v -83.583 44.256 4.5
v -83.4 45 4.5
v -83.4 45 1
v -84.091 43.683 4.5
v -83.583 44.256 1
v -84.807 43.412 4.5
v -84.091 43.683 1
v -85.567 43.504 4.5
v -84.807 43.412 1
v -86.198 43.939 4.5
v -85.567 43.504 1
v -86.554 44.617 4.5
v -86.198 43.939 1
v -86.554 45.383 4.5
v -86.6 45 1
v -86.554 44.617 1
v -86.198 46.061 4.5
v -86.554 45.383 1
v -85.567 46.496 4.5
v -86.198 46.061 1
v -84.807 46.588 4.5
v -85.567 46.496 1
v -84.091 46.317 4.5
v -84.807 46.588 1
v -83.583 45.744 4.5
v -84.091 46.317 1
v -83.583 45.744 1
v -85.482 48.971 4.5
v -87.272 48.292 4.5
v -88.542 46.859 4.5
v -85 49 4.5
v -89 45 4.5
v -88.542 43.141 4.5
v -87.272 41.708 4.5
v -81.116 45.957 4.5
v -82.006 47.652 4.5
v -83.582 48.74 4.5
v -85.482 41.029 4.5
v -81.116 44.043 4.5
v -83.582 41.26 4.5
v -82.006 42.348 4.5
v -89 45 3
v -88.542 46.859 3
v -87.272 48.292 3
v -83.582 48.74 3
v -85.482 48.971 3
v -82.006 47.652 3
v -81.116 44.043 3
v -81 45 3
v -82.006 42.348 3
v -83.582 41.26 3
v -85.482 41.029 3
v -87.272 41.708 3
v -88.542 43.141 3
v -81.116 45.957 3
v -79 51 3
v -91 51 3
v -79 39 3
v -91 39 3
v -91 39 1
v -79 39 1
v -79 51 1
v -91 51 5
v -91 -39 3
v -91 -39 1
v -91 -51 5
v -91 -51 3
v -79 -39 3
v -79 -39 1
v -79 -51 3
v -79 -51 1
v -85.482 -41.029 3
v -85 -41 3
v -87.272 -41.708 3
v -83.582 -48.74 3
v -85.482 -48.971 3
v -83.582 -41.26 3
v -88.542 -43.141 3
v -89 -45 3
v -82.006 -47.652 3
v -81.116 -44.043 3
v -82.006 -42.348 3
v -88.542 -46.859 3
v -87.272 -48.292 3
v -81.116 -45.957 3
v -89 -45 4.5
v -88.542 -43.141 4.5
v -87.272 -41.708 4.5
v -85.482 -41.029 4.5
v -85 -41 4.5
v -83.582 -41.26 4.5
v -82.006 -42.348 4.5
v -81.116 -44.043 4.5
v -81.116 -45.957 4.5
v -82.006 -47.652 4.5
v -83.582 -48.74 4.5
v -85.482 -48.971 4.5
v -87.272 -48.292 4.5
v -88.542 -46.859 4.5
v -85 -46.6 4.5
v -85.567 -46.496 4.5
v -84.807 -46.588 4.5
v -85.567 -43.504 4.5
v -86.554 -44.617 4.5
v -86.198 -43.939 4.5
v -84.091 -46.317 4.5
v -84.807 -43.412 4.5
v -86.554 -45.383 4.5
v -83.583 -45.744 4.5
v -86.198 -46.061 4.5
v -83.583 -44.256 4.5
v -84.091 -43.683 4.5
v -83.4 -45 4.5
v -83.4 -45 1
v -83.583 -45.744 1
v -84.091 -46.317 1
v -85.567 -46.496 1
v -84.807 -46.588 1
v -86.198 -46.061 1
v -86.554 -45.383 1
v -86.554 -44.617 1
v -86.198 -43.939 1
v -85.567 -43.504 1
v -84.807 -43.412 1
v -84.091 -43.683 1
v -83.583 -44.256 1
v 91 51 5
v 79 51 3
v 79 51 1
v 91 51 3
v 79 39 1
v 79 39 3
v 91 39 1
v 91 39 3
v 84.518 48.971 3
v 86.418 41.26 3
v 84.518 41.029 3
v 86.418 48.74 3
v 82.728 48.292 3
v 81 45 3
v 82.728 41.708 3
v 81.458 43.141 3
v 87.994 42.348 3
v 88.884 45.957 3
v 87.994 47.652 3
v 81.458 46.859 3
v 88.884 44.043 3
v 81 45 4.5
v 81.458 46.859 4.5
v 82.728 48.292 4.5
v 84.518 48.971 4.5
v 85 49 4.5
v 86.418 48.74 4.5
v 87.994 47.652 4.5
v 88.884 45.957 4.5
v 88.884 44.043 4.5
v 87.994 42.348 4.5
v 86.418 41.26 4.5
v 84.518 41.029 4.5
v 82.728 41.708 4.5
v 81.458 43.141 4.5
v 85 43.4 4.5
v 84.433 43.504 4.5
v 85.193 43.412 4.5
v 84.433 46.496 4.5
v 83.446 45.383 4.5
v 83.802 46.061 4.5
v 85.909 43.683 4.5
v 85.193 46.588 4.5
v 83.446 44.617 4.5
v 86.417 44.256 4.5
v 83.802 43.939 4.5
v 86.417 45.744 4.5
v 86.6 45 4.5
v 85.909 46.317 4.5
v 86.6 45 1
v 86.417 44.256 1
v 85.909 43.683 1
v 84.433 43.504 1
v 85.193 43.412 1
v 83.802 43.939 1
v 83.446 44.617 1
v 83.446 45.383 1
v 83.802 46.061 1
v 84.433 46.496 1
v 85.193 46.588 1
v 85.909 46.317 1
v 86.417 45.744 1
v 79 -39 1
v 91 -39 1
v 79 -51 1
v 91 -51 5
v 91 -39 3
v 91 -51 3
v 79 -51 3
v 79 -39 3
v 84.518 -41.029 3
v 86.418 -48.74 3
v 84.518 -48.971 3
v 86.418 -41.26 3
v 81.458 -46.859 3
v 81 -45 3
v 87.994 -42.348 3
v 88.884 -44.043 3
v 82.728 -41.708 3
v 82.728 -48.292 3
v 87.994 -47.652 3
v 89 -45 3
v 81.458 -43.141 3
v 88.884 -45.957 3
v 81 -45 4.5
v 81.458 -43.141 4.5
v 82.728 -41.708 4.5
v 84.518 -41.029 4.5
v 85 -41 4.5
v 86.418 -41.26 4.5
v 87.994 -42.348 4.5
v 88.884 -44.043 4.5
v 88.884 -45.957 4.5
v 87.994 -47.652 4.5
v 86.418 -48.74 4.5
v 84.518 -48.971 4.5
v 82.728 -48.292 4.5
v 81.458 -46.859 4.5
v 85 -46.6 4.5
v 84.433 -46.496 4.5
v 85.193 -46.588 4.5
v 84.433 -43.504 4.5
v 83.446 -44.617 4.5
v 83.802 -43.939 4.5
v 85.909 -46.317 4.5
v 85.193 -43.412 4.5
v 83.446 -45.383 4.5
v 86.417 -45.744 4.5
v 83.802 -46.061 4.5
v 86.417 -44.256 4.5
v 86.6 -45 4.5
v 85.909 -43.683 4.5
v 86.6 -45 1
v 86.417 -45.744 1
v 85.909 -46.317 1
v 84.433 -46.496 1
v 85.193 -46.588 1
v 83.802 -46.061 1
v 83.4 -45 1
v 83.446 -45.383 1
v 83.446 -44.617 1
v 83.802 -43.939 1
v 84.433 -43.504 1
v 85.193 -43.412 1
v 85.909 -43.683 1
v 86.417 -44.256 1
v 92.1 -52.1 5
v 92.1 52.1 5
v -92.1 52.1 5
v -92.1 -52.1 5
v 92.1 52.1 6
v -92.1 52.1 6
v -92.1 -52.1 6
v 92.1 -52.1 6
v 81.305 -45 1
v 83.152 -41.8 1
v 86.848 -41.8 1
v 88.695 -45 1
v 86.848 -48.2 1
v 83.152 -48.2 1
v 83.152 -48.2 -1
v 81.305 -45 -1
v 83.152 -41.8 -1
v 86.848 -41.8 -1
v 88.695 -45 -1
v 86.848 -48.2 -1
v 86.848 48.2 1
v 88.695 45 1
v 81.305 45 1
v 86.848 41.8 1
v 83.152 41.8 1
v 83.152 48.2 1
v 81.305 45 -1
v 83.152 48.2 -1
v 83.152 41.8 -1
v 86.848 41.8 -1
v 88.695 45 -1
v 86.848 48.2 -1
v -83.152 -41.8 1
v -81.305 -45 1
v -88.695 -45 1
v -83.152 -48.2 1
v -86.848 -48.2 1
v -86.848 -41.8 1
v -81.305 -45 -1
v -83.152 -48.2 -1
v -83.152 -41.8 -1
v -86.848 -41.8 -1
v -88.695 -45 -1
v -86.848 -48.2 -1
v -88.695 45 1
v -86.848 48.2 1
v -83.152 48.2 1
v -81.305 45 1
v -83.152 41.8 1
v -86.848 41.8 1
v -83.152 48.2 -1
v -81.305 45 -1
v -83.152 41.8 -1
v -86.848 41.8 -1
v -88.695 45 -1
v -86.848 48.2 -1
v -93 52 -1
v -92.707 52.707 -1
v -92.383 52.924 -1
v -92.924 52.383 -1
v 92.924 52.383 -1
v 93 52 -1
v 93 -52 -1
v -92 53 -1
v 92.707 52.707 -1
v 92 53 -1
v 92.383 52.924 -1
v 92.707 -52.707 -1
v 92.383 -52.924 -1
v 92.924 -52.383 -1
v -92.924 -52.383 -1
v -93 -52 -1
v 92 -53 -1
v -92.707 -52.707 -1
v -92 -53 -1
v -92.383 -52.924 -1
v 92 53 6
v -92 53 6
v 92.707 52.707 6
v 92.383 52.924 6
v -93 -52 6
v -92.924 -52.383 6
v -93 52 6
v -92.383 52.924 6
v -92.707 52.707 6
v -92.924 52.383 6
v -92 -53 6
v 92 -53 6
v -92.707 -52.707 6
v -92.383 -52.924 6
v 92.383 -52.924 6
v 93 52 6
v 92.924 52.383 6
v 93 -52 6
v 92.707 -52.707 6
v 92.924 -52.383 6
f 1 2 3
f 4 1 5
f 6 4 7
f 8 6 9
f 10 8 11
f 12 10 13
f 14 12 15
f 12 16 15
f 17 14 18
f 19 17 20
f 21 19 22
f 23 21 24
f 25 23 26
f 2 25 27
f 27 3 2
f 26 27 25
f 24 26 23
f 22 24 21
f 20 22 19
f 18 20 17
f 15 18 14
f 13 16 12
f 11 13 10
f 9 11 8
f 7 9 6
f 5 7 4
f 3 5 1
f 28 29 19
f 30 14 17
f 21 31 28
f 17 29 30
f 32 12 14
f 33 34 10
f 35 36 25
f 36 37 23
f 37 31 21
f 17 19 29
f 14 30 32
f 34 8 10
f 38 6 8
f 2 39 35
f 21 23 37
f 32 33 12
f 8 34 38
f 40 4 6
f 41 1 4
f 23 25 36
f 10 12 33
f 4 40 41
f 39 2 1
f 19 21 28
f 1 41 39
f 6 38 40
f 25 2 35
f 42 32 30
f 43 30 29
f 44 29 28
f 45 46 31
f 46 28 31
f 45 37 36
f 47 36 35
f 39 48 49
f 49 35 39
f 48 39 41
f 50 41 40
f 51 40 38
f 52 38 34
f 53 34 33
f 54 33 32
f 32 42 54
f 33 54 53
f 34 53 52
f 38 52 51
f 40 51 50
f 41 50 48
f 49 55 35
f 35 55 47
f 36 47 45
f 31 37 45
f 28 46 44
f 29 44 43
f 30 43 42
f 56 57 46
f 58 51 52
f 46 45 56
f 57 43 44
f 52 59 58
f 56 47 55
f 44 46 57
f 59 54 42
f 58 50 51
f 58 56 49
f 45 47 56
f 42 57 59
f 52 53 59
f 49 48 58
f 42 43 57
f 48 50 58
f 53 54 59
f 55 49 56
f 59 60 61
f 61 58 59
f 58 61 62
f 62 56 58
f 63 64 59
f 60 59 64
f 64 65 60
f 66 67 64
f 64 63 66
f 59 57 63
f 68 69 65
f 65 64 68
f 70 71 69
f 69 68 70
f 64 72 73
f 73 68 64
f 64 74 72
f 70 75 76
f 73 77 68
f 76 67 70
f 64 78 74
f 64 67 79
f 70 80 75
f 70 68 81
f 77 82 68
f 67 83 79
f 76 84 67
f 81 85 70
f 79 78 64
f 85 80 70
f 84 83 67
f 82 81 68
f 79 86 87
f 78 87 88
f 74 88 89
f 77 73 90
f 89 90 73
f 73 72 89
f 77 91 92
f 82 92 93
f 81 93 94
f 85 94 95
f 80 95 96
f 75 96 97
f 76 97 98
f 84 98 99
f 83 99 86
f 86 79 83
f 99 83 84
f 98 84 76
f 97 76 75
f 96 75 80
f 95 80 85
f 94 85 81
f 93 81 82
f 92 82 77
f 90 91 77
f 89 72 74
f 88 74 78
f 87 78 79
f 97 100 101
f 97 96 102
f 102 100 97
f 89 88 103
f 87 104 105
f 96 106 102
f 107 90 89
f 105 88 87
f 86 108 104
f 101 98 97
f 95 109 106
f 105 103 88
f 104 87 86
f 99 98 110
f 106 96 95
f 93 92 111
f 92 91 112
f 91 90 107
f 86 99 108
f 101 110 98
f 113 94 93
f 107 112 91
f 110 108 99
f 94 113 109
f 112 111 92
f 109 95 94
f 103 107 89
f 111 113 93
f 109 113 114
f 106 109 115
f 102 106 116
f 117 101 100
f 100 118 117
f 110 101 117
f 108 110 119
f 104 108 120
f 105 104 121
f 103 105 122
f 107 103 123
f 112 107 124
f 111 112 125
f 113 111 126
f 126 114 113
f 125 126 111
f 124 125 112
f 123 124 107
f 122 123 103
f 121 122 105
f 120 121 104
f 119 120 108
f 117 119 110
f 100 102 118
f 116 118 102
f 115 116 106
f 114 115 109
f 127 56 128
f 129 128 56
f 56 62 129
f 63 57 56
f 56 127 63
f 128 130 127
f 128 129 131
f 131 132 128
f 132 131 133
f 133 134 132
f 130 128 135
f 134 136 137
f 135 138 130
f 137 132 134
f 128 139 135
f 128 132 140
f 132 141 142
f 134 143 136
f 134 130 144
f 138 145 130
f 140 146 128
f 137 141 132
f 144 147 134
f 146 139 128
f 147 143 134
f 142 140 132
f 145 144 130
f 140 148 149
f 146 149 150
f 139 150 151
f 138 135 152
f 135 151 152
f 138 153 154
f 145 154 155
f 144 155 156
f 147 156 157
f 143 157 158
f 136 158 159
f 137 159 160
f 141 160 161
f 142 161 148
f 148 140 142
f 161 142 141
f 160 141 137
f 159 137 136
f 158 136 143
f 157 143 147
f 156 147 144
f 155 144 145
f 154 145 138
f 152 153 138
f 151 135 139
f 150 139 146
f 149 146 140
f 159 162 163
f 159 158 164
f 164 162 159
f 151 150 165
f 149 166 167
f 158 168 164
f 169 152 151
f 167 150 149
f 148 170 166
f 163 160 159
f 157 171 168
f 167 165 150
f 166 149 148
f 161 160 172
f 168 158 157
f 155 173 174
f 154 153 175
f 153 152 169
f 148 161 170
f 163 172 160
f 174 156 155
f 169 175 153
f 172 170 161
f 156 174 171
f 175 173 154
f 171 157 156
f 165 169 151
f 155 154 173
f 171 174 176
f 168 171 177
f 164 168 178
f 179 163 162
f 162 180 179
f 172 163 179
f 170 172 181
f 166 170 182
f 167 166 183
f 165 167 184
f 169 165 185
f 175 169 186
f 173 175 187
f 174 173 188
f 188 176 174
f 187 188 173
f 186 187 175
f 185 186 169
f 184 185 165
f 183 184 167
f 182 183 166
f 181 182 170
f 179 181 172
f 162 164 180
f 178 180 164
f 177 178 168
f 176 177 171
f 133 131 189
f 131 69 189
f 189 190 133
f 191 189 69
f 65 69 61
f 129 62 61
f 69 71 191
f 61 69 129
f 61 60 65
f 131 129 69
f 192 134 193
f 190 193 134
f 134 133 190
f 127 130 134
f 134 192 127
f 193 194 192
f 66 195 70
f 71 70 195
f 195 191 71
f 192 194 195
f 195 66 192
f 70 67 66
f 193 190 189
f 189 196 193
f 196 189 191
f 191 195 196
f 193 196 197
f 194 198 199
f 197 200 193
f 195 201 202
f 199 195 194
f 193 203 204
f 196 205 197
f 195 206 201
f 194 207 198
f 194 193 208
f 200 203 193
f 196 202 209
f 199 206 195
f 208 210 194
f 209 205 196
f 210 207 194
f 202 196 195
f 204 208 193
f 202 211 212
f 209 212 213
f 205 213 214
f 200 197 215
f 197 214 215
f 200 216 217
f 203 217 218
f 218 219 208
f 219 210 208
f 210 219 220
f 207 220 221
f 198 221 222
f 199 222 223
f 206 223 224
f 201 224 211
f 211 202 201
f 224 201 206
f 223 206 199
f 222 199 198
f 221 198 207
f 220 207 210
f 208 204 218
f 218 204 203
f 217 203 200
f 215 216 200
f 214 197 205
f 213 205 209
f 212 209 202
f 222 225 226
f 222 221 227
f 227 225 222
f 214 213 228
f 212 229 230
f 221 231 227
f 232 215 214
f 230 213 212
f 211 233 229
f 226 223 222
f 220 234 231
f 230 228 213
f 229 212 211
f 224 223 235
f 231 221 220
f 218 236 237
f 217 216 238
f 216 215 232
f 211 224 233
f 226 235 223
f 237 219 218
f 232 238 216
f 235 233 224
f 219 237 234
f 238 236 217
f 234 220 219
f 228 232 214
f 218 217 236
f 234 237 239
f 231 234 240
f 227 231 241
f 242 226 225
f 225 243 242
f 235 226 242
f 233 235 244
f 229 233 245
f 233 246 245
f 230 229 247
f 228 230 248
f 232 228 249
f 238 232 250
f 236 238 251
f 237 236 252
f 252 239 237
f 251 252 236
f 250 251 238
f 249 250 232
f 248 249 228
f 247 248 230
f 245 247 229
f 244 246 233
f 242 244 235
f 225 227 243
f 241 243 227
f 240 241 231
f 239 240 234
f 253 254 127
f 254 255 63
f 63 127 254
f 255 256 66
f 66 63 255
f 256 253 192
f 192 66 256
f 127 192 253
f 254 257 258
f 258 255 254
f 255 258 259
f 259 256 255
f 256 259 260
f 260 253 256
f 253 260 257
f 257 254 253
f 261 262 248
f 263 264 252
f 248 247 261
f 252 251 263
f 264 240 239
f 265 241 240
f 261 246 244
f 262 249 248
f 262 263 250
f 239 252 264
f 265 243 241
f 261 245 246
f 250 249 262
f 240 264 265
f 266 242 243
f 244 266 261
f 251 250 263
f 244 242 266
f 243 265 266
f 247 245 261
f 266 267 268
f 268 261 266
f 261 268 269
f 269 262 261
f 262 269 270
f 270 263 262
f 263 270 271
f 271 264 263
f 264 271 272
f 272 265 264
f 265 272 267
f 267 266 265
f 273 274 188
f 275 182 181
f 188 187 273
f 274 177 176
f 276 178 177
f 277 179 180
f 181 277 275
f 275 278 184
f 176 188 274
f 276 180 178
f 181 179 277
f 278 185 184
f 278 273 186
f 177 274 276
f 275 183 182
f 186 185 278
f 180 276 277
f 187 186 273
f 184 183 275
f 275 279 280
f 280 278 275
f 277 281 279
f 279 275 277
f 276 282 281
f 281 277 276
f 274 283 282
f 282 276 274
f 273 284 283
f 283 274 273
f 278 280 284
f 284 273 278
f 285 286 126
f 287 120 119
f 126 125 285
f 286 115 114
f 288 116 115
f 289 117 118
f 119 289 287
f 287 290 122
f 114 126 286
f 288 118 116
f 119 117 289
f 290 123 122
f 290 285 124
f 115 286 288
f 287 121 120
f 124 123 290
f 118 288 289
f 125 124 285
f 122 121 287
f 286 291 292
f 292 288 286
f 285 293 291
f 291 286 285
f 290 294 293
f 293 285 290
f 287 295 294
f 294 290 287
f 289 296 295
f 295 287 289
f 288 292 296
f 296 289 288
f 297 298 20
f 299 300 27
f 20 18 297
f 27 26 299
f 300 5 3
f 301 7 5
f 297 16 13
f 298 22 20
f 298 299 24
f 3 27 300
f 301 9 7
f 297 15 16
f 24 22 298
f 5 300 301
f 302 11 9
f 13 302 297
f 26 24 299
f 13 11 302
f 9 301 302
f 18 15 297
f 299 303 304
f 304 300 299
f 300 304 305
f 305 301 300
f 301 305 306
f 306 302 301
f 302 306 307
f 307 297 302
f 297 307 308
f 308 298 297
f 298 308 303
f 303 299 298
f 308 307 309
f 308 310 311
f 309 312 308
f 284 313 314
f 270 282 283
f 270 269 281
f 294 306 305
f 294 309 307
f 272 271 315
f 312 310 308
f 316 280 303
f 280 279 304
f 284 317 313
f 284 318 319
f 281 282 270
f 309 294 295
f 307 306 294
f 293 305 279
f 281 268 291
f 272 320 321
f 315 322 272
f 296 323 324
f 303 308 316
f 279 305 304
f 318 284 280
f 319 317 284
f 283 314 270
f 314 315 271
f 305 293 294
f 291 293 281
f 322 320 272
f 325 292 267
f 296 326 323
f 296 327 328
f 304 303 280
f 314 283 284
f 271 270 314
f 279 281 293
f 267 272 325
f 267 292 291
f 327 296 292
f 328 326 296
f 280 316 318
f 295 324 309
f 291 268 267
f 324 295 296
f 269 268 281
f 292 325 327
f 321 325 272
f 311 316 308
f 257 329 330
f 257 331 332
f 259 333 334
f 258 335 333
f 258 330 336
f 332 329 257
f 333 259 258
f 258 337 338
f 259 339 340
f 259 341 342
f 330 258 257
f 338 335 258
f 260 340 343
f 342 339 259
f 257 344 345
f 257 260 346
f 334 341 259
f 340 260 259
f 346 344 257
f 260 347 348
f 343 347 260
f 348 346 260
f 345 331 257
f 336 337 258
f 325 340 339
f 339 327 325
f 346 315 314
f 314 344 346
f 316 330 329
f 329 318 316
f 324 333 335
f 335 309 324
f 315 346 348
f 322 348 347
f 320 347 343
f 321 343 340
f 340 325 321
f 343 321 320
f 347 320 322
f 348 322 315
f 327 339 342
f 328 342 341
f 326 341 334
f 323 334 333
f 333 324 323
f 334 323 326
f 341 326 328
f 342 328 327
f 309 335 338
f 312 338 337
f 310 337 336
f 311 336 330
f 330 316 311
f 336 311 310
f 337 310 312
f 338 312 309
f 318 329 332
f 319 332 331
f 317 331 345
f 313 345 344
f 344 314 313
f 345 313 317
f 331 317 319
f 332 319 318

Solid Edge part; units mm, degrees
sketch "Sketch1" plane through (0, 0, 0) normal (0, 0, 1) x (1, 0, 0)
  line L0 (93, -53) -> (93, 53)
  line L1 (93, 53) -> (-93, 53)
  line L2 (-93, 53) -> (-93, -53)
  line L3 (-93, -53) -> (93, -53)
extrude "Protrusion1" add sketch "Sketch1" along normal mid plane 2
sketch "Sketch2" plane through (0, 0, 1) normal (0, 0, 1) x (1, 0, 0)
  line L0 (-93, 53) -> (-93, -53)
  line L1 (-93, -53) -> (93, -53)
  line L2 (93, -53) -> (93, 53)
  line L3 (93, 53) -> (-93, 53)
  line L4 (-91, 51) -> (-91, -51)
  line L5 (-91, -51) -> (91, -51)
  line L6 (91, -51) -> (91, 51)
  line L7 (91, 51) -> (-91, 51)
  dimension "D1" = 182
  dimension "D2" = 102
  dimension "D3" = 186
  dimension "D4" = 106
extrude "ExtrudedProtrusion_3" add sketch "Sketch2" along normal blind 5
sketch "Sketch3" plane through (0, 0, 1) normal (0, 0, 1) x (0, 1, 0)
  circle A0 centre (45, 85) radius 4
  circle A1 centre (-45, 85) radius 4
  circle A2 centre (45, -85) radius 4
  circle A3 centre (-45, -85) radius 4
  dimension "D1" = 100
  dimension "D2" = 180
  dimension "D3" = 8
  dimension "D4" = 5
  dimension "D5" = 5
  dimension "D6" = 8
  dimension "D7" = 5
  dimension "D8" = 8
  dimension "D9" = 5
  dimension "D10" = 5
extrude "ExtrudedProtrusion_4" add sketch "Sketch3" along normal blind 3.5
hole "Hole_1" at (-85, 45, 4.5) direction (0, 0, -1) diameter 3.2 end up to next
hole "Hole_2" at (-85, -45, 4.5) direction (0, 0, -1) diameter 3.2 end up to next
hole "Hole_3" at (85, 45, 4.5) direction (0, 0, -1) diameter 3.2 end up to next
hole "Hole_4" at (85, -45, 4.5) direction (0, 0, -1) diameter 3.2 end up to next
sketch "Sketch4" plane through (0, 0, 1) normal (0, 0, 1) x (0, 1, 0)
  circle A0 centre (45, 85) radius 4
  line L0 (51, 91) -> (39, 91)
  line L1 (39, 91) -> (39, 79)
  line L2 (39, 79) -> (51, 79)
  line L3 (51, 79) -> (51, 91)
  line L4 (39, -91) -> (39, -79)
  line L5 (39, -79) -> (51, -79)
  line L6 (51, -79) -> (51, -91)
  line L7 (51, -91) -> (39, -91)
  circle A1 centre (45, -85) radius 4
  circle A2 centre (-45, -85) radius 4
  line L8 (-51, -91) -> (-39, -91)
  line L9 (-39, -91) -> (-39, -79)
  line L10 (-39, -79) -> (-51, -79)
  line L11 (-51, -79) -> (-51, -91)
  line L12 (-39, 79) -> (-51, 79)
  line L13 (-51, 79) -> (-51, 91)
  line L14 (-51, 91) -> (-39, 91)
  line L15 (-39, 91) -> (-39, 79)
  circle A3 centre (-45, 85) radius 4
extrude "Protrusion2" add sketch "Sketch4" along normal blind 2
sketch "Sketch5" plane through (0, 0, 6) normal (0, 0, 1) x (1, 0, 0)
  line L0 (91, 51) -> (-91, 51)
  line L1 (-91, 51) -> (-91, -51)
  line L2 (-91, -51) -> (91, -51)
  line L3 (91, -51) -> (91, 51)
  line L4 (-92.1, 52.1) -> (-92.1, -52.1)
  line L5 (-92.1, -52.1) -> (92.1, -52.1)
  line L6 (92.1, -52.1) -> (92.1, 52.1)
  line L7 (92.1, 52.1) -> (-92.1, 52.1)
extrude "Vyříznutí_3" cut sketch "Sketch5" against normal blind 1
fillet "Zaoblení_3" radius 1 4 edges at (93, -53, 2.5) (93, 53, 2.5) (-93, 53, 2.5) (-93, -53, 2.5)
sketch "Sketch6" plane through (0, 0, -1) normal (0, 0, -1) x (0, 1, 0)
  line L0 (48.2, -83.1525) -> (45, -81.305)
  line L1 (45, -81.305) -> (41.8, -83.1525)
  line L2 (41.8, -83.1525) -> (41.8, -86.8475)
  line L3 (41.8, -86.8475) -> (45, -88.695)
  line L4 (45, -88.695) -> (48.2, -86.8475)
  line L5 (48.2, -86.8475) -> (48.2, -83.1525)
  line L6 (-45, -81.305) -> (-41.8, -83.1525)
  line L7 (-41.8, -83.1525) -> (-41.8, -86.8475)
  line L8 (-41.8, -86.8475) -> (-45, -88.695)
  line L9 (-45, -88.695) -> (-48.2, -86.8475)
  line L10 (-48.2, -86.8475) -> (-48.2, -83.1525)
  line L11 (-48.2, -83.1525) -> (-45, -81.305)
  line L12 (-45, 81.305) -> (-41.8, 83.1525)
  line L13 (-41.8, 83.1525) -> (-41.8, 86.8475)
  line L14 (-41.8, 86.8475) -> (-45, 88.695)
  line L15 (-45, 88.695) -> (-48.2, 86.8475)
  line L16 (-48.2, 86.8475) -> (-48.2, 83.1525)
  line L17 (-48.2, 83.1525) -> (-45, 81.305)
  line L18 (45, 81.305) -> (41.8, 83.1525)
  line L19 (41.8, 83.1525) -> (41.8, 86.8475)
  line L20 (41.8, 86.8475) -> (45, 88.695)
  line L21 (45, 88.695) -> (48.2, 86.8475)
  line L22 (48.2, 86.8475) -> (48.2, 83.1525)
  line L23 (48.2, 83.1525) -> (45, 81.305)
extrude "Vyříznutí_MatkaHoles" cut sketch "Sketch6" against normal blind 2
